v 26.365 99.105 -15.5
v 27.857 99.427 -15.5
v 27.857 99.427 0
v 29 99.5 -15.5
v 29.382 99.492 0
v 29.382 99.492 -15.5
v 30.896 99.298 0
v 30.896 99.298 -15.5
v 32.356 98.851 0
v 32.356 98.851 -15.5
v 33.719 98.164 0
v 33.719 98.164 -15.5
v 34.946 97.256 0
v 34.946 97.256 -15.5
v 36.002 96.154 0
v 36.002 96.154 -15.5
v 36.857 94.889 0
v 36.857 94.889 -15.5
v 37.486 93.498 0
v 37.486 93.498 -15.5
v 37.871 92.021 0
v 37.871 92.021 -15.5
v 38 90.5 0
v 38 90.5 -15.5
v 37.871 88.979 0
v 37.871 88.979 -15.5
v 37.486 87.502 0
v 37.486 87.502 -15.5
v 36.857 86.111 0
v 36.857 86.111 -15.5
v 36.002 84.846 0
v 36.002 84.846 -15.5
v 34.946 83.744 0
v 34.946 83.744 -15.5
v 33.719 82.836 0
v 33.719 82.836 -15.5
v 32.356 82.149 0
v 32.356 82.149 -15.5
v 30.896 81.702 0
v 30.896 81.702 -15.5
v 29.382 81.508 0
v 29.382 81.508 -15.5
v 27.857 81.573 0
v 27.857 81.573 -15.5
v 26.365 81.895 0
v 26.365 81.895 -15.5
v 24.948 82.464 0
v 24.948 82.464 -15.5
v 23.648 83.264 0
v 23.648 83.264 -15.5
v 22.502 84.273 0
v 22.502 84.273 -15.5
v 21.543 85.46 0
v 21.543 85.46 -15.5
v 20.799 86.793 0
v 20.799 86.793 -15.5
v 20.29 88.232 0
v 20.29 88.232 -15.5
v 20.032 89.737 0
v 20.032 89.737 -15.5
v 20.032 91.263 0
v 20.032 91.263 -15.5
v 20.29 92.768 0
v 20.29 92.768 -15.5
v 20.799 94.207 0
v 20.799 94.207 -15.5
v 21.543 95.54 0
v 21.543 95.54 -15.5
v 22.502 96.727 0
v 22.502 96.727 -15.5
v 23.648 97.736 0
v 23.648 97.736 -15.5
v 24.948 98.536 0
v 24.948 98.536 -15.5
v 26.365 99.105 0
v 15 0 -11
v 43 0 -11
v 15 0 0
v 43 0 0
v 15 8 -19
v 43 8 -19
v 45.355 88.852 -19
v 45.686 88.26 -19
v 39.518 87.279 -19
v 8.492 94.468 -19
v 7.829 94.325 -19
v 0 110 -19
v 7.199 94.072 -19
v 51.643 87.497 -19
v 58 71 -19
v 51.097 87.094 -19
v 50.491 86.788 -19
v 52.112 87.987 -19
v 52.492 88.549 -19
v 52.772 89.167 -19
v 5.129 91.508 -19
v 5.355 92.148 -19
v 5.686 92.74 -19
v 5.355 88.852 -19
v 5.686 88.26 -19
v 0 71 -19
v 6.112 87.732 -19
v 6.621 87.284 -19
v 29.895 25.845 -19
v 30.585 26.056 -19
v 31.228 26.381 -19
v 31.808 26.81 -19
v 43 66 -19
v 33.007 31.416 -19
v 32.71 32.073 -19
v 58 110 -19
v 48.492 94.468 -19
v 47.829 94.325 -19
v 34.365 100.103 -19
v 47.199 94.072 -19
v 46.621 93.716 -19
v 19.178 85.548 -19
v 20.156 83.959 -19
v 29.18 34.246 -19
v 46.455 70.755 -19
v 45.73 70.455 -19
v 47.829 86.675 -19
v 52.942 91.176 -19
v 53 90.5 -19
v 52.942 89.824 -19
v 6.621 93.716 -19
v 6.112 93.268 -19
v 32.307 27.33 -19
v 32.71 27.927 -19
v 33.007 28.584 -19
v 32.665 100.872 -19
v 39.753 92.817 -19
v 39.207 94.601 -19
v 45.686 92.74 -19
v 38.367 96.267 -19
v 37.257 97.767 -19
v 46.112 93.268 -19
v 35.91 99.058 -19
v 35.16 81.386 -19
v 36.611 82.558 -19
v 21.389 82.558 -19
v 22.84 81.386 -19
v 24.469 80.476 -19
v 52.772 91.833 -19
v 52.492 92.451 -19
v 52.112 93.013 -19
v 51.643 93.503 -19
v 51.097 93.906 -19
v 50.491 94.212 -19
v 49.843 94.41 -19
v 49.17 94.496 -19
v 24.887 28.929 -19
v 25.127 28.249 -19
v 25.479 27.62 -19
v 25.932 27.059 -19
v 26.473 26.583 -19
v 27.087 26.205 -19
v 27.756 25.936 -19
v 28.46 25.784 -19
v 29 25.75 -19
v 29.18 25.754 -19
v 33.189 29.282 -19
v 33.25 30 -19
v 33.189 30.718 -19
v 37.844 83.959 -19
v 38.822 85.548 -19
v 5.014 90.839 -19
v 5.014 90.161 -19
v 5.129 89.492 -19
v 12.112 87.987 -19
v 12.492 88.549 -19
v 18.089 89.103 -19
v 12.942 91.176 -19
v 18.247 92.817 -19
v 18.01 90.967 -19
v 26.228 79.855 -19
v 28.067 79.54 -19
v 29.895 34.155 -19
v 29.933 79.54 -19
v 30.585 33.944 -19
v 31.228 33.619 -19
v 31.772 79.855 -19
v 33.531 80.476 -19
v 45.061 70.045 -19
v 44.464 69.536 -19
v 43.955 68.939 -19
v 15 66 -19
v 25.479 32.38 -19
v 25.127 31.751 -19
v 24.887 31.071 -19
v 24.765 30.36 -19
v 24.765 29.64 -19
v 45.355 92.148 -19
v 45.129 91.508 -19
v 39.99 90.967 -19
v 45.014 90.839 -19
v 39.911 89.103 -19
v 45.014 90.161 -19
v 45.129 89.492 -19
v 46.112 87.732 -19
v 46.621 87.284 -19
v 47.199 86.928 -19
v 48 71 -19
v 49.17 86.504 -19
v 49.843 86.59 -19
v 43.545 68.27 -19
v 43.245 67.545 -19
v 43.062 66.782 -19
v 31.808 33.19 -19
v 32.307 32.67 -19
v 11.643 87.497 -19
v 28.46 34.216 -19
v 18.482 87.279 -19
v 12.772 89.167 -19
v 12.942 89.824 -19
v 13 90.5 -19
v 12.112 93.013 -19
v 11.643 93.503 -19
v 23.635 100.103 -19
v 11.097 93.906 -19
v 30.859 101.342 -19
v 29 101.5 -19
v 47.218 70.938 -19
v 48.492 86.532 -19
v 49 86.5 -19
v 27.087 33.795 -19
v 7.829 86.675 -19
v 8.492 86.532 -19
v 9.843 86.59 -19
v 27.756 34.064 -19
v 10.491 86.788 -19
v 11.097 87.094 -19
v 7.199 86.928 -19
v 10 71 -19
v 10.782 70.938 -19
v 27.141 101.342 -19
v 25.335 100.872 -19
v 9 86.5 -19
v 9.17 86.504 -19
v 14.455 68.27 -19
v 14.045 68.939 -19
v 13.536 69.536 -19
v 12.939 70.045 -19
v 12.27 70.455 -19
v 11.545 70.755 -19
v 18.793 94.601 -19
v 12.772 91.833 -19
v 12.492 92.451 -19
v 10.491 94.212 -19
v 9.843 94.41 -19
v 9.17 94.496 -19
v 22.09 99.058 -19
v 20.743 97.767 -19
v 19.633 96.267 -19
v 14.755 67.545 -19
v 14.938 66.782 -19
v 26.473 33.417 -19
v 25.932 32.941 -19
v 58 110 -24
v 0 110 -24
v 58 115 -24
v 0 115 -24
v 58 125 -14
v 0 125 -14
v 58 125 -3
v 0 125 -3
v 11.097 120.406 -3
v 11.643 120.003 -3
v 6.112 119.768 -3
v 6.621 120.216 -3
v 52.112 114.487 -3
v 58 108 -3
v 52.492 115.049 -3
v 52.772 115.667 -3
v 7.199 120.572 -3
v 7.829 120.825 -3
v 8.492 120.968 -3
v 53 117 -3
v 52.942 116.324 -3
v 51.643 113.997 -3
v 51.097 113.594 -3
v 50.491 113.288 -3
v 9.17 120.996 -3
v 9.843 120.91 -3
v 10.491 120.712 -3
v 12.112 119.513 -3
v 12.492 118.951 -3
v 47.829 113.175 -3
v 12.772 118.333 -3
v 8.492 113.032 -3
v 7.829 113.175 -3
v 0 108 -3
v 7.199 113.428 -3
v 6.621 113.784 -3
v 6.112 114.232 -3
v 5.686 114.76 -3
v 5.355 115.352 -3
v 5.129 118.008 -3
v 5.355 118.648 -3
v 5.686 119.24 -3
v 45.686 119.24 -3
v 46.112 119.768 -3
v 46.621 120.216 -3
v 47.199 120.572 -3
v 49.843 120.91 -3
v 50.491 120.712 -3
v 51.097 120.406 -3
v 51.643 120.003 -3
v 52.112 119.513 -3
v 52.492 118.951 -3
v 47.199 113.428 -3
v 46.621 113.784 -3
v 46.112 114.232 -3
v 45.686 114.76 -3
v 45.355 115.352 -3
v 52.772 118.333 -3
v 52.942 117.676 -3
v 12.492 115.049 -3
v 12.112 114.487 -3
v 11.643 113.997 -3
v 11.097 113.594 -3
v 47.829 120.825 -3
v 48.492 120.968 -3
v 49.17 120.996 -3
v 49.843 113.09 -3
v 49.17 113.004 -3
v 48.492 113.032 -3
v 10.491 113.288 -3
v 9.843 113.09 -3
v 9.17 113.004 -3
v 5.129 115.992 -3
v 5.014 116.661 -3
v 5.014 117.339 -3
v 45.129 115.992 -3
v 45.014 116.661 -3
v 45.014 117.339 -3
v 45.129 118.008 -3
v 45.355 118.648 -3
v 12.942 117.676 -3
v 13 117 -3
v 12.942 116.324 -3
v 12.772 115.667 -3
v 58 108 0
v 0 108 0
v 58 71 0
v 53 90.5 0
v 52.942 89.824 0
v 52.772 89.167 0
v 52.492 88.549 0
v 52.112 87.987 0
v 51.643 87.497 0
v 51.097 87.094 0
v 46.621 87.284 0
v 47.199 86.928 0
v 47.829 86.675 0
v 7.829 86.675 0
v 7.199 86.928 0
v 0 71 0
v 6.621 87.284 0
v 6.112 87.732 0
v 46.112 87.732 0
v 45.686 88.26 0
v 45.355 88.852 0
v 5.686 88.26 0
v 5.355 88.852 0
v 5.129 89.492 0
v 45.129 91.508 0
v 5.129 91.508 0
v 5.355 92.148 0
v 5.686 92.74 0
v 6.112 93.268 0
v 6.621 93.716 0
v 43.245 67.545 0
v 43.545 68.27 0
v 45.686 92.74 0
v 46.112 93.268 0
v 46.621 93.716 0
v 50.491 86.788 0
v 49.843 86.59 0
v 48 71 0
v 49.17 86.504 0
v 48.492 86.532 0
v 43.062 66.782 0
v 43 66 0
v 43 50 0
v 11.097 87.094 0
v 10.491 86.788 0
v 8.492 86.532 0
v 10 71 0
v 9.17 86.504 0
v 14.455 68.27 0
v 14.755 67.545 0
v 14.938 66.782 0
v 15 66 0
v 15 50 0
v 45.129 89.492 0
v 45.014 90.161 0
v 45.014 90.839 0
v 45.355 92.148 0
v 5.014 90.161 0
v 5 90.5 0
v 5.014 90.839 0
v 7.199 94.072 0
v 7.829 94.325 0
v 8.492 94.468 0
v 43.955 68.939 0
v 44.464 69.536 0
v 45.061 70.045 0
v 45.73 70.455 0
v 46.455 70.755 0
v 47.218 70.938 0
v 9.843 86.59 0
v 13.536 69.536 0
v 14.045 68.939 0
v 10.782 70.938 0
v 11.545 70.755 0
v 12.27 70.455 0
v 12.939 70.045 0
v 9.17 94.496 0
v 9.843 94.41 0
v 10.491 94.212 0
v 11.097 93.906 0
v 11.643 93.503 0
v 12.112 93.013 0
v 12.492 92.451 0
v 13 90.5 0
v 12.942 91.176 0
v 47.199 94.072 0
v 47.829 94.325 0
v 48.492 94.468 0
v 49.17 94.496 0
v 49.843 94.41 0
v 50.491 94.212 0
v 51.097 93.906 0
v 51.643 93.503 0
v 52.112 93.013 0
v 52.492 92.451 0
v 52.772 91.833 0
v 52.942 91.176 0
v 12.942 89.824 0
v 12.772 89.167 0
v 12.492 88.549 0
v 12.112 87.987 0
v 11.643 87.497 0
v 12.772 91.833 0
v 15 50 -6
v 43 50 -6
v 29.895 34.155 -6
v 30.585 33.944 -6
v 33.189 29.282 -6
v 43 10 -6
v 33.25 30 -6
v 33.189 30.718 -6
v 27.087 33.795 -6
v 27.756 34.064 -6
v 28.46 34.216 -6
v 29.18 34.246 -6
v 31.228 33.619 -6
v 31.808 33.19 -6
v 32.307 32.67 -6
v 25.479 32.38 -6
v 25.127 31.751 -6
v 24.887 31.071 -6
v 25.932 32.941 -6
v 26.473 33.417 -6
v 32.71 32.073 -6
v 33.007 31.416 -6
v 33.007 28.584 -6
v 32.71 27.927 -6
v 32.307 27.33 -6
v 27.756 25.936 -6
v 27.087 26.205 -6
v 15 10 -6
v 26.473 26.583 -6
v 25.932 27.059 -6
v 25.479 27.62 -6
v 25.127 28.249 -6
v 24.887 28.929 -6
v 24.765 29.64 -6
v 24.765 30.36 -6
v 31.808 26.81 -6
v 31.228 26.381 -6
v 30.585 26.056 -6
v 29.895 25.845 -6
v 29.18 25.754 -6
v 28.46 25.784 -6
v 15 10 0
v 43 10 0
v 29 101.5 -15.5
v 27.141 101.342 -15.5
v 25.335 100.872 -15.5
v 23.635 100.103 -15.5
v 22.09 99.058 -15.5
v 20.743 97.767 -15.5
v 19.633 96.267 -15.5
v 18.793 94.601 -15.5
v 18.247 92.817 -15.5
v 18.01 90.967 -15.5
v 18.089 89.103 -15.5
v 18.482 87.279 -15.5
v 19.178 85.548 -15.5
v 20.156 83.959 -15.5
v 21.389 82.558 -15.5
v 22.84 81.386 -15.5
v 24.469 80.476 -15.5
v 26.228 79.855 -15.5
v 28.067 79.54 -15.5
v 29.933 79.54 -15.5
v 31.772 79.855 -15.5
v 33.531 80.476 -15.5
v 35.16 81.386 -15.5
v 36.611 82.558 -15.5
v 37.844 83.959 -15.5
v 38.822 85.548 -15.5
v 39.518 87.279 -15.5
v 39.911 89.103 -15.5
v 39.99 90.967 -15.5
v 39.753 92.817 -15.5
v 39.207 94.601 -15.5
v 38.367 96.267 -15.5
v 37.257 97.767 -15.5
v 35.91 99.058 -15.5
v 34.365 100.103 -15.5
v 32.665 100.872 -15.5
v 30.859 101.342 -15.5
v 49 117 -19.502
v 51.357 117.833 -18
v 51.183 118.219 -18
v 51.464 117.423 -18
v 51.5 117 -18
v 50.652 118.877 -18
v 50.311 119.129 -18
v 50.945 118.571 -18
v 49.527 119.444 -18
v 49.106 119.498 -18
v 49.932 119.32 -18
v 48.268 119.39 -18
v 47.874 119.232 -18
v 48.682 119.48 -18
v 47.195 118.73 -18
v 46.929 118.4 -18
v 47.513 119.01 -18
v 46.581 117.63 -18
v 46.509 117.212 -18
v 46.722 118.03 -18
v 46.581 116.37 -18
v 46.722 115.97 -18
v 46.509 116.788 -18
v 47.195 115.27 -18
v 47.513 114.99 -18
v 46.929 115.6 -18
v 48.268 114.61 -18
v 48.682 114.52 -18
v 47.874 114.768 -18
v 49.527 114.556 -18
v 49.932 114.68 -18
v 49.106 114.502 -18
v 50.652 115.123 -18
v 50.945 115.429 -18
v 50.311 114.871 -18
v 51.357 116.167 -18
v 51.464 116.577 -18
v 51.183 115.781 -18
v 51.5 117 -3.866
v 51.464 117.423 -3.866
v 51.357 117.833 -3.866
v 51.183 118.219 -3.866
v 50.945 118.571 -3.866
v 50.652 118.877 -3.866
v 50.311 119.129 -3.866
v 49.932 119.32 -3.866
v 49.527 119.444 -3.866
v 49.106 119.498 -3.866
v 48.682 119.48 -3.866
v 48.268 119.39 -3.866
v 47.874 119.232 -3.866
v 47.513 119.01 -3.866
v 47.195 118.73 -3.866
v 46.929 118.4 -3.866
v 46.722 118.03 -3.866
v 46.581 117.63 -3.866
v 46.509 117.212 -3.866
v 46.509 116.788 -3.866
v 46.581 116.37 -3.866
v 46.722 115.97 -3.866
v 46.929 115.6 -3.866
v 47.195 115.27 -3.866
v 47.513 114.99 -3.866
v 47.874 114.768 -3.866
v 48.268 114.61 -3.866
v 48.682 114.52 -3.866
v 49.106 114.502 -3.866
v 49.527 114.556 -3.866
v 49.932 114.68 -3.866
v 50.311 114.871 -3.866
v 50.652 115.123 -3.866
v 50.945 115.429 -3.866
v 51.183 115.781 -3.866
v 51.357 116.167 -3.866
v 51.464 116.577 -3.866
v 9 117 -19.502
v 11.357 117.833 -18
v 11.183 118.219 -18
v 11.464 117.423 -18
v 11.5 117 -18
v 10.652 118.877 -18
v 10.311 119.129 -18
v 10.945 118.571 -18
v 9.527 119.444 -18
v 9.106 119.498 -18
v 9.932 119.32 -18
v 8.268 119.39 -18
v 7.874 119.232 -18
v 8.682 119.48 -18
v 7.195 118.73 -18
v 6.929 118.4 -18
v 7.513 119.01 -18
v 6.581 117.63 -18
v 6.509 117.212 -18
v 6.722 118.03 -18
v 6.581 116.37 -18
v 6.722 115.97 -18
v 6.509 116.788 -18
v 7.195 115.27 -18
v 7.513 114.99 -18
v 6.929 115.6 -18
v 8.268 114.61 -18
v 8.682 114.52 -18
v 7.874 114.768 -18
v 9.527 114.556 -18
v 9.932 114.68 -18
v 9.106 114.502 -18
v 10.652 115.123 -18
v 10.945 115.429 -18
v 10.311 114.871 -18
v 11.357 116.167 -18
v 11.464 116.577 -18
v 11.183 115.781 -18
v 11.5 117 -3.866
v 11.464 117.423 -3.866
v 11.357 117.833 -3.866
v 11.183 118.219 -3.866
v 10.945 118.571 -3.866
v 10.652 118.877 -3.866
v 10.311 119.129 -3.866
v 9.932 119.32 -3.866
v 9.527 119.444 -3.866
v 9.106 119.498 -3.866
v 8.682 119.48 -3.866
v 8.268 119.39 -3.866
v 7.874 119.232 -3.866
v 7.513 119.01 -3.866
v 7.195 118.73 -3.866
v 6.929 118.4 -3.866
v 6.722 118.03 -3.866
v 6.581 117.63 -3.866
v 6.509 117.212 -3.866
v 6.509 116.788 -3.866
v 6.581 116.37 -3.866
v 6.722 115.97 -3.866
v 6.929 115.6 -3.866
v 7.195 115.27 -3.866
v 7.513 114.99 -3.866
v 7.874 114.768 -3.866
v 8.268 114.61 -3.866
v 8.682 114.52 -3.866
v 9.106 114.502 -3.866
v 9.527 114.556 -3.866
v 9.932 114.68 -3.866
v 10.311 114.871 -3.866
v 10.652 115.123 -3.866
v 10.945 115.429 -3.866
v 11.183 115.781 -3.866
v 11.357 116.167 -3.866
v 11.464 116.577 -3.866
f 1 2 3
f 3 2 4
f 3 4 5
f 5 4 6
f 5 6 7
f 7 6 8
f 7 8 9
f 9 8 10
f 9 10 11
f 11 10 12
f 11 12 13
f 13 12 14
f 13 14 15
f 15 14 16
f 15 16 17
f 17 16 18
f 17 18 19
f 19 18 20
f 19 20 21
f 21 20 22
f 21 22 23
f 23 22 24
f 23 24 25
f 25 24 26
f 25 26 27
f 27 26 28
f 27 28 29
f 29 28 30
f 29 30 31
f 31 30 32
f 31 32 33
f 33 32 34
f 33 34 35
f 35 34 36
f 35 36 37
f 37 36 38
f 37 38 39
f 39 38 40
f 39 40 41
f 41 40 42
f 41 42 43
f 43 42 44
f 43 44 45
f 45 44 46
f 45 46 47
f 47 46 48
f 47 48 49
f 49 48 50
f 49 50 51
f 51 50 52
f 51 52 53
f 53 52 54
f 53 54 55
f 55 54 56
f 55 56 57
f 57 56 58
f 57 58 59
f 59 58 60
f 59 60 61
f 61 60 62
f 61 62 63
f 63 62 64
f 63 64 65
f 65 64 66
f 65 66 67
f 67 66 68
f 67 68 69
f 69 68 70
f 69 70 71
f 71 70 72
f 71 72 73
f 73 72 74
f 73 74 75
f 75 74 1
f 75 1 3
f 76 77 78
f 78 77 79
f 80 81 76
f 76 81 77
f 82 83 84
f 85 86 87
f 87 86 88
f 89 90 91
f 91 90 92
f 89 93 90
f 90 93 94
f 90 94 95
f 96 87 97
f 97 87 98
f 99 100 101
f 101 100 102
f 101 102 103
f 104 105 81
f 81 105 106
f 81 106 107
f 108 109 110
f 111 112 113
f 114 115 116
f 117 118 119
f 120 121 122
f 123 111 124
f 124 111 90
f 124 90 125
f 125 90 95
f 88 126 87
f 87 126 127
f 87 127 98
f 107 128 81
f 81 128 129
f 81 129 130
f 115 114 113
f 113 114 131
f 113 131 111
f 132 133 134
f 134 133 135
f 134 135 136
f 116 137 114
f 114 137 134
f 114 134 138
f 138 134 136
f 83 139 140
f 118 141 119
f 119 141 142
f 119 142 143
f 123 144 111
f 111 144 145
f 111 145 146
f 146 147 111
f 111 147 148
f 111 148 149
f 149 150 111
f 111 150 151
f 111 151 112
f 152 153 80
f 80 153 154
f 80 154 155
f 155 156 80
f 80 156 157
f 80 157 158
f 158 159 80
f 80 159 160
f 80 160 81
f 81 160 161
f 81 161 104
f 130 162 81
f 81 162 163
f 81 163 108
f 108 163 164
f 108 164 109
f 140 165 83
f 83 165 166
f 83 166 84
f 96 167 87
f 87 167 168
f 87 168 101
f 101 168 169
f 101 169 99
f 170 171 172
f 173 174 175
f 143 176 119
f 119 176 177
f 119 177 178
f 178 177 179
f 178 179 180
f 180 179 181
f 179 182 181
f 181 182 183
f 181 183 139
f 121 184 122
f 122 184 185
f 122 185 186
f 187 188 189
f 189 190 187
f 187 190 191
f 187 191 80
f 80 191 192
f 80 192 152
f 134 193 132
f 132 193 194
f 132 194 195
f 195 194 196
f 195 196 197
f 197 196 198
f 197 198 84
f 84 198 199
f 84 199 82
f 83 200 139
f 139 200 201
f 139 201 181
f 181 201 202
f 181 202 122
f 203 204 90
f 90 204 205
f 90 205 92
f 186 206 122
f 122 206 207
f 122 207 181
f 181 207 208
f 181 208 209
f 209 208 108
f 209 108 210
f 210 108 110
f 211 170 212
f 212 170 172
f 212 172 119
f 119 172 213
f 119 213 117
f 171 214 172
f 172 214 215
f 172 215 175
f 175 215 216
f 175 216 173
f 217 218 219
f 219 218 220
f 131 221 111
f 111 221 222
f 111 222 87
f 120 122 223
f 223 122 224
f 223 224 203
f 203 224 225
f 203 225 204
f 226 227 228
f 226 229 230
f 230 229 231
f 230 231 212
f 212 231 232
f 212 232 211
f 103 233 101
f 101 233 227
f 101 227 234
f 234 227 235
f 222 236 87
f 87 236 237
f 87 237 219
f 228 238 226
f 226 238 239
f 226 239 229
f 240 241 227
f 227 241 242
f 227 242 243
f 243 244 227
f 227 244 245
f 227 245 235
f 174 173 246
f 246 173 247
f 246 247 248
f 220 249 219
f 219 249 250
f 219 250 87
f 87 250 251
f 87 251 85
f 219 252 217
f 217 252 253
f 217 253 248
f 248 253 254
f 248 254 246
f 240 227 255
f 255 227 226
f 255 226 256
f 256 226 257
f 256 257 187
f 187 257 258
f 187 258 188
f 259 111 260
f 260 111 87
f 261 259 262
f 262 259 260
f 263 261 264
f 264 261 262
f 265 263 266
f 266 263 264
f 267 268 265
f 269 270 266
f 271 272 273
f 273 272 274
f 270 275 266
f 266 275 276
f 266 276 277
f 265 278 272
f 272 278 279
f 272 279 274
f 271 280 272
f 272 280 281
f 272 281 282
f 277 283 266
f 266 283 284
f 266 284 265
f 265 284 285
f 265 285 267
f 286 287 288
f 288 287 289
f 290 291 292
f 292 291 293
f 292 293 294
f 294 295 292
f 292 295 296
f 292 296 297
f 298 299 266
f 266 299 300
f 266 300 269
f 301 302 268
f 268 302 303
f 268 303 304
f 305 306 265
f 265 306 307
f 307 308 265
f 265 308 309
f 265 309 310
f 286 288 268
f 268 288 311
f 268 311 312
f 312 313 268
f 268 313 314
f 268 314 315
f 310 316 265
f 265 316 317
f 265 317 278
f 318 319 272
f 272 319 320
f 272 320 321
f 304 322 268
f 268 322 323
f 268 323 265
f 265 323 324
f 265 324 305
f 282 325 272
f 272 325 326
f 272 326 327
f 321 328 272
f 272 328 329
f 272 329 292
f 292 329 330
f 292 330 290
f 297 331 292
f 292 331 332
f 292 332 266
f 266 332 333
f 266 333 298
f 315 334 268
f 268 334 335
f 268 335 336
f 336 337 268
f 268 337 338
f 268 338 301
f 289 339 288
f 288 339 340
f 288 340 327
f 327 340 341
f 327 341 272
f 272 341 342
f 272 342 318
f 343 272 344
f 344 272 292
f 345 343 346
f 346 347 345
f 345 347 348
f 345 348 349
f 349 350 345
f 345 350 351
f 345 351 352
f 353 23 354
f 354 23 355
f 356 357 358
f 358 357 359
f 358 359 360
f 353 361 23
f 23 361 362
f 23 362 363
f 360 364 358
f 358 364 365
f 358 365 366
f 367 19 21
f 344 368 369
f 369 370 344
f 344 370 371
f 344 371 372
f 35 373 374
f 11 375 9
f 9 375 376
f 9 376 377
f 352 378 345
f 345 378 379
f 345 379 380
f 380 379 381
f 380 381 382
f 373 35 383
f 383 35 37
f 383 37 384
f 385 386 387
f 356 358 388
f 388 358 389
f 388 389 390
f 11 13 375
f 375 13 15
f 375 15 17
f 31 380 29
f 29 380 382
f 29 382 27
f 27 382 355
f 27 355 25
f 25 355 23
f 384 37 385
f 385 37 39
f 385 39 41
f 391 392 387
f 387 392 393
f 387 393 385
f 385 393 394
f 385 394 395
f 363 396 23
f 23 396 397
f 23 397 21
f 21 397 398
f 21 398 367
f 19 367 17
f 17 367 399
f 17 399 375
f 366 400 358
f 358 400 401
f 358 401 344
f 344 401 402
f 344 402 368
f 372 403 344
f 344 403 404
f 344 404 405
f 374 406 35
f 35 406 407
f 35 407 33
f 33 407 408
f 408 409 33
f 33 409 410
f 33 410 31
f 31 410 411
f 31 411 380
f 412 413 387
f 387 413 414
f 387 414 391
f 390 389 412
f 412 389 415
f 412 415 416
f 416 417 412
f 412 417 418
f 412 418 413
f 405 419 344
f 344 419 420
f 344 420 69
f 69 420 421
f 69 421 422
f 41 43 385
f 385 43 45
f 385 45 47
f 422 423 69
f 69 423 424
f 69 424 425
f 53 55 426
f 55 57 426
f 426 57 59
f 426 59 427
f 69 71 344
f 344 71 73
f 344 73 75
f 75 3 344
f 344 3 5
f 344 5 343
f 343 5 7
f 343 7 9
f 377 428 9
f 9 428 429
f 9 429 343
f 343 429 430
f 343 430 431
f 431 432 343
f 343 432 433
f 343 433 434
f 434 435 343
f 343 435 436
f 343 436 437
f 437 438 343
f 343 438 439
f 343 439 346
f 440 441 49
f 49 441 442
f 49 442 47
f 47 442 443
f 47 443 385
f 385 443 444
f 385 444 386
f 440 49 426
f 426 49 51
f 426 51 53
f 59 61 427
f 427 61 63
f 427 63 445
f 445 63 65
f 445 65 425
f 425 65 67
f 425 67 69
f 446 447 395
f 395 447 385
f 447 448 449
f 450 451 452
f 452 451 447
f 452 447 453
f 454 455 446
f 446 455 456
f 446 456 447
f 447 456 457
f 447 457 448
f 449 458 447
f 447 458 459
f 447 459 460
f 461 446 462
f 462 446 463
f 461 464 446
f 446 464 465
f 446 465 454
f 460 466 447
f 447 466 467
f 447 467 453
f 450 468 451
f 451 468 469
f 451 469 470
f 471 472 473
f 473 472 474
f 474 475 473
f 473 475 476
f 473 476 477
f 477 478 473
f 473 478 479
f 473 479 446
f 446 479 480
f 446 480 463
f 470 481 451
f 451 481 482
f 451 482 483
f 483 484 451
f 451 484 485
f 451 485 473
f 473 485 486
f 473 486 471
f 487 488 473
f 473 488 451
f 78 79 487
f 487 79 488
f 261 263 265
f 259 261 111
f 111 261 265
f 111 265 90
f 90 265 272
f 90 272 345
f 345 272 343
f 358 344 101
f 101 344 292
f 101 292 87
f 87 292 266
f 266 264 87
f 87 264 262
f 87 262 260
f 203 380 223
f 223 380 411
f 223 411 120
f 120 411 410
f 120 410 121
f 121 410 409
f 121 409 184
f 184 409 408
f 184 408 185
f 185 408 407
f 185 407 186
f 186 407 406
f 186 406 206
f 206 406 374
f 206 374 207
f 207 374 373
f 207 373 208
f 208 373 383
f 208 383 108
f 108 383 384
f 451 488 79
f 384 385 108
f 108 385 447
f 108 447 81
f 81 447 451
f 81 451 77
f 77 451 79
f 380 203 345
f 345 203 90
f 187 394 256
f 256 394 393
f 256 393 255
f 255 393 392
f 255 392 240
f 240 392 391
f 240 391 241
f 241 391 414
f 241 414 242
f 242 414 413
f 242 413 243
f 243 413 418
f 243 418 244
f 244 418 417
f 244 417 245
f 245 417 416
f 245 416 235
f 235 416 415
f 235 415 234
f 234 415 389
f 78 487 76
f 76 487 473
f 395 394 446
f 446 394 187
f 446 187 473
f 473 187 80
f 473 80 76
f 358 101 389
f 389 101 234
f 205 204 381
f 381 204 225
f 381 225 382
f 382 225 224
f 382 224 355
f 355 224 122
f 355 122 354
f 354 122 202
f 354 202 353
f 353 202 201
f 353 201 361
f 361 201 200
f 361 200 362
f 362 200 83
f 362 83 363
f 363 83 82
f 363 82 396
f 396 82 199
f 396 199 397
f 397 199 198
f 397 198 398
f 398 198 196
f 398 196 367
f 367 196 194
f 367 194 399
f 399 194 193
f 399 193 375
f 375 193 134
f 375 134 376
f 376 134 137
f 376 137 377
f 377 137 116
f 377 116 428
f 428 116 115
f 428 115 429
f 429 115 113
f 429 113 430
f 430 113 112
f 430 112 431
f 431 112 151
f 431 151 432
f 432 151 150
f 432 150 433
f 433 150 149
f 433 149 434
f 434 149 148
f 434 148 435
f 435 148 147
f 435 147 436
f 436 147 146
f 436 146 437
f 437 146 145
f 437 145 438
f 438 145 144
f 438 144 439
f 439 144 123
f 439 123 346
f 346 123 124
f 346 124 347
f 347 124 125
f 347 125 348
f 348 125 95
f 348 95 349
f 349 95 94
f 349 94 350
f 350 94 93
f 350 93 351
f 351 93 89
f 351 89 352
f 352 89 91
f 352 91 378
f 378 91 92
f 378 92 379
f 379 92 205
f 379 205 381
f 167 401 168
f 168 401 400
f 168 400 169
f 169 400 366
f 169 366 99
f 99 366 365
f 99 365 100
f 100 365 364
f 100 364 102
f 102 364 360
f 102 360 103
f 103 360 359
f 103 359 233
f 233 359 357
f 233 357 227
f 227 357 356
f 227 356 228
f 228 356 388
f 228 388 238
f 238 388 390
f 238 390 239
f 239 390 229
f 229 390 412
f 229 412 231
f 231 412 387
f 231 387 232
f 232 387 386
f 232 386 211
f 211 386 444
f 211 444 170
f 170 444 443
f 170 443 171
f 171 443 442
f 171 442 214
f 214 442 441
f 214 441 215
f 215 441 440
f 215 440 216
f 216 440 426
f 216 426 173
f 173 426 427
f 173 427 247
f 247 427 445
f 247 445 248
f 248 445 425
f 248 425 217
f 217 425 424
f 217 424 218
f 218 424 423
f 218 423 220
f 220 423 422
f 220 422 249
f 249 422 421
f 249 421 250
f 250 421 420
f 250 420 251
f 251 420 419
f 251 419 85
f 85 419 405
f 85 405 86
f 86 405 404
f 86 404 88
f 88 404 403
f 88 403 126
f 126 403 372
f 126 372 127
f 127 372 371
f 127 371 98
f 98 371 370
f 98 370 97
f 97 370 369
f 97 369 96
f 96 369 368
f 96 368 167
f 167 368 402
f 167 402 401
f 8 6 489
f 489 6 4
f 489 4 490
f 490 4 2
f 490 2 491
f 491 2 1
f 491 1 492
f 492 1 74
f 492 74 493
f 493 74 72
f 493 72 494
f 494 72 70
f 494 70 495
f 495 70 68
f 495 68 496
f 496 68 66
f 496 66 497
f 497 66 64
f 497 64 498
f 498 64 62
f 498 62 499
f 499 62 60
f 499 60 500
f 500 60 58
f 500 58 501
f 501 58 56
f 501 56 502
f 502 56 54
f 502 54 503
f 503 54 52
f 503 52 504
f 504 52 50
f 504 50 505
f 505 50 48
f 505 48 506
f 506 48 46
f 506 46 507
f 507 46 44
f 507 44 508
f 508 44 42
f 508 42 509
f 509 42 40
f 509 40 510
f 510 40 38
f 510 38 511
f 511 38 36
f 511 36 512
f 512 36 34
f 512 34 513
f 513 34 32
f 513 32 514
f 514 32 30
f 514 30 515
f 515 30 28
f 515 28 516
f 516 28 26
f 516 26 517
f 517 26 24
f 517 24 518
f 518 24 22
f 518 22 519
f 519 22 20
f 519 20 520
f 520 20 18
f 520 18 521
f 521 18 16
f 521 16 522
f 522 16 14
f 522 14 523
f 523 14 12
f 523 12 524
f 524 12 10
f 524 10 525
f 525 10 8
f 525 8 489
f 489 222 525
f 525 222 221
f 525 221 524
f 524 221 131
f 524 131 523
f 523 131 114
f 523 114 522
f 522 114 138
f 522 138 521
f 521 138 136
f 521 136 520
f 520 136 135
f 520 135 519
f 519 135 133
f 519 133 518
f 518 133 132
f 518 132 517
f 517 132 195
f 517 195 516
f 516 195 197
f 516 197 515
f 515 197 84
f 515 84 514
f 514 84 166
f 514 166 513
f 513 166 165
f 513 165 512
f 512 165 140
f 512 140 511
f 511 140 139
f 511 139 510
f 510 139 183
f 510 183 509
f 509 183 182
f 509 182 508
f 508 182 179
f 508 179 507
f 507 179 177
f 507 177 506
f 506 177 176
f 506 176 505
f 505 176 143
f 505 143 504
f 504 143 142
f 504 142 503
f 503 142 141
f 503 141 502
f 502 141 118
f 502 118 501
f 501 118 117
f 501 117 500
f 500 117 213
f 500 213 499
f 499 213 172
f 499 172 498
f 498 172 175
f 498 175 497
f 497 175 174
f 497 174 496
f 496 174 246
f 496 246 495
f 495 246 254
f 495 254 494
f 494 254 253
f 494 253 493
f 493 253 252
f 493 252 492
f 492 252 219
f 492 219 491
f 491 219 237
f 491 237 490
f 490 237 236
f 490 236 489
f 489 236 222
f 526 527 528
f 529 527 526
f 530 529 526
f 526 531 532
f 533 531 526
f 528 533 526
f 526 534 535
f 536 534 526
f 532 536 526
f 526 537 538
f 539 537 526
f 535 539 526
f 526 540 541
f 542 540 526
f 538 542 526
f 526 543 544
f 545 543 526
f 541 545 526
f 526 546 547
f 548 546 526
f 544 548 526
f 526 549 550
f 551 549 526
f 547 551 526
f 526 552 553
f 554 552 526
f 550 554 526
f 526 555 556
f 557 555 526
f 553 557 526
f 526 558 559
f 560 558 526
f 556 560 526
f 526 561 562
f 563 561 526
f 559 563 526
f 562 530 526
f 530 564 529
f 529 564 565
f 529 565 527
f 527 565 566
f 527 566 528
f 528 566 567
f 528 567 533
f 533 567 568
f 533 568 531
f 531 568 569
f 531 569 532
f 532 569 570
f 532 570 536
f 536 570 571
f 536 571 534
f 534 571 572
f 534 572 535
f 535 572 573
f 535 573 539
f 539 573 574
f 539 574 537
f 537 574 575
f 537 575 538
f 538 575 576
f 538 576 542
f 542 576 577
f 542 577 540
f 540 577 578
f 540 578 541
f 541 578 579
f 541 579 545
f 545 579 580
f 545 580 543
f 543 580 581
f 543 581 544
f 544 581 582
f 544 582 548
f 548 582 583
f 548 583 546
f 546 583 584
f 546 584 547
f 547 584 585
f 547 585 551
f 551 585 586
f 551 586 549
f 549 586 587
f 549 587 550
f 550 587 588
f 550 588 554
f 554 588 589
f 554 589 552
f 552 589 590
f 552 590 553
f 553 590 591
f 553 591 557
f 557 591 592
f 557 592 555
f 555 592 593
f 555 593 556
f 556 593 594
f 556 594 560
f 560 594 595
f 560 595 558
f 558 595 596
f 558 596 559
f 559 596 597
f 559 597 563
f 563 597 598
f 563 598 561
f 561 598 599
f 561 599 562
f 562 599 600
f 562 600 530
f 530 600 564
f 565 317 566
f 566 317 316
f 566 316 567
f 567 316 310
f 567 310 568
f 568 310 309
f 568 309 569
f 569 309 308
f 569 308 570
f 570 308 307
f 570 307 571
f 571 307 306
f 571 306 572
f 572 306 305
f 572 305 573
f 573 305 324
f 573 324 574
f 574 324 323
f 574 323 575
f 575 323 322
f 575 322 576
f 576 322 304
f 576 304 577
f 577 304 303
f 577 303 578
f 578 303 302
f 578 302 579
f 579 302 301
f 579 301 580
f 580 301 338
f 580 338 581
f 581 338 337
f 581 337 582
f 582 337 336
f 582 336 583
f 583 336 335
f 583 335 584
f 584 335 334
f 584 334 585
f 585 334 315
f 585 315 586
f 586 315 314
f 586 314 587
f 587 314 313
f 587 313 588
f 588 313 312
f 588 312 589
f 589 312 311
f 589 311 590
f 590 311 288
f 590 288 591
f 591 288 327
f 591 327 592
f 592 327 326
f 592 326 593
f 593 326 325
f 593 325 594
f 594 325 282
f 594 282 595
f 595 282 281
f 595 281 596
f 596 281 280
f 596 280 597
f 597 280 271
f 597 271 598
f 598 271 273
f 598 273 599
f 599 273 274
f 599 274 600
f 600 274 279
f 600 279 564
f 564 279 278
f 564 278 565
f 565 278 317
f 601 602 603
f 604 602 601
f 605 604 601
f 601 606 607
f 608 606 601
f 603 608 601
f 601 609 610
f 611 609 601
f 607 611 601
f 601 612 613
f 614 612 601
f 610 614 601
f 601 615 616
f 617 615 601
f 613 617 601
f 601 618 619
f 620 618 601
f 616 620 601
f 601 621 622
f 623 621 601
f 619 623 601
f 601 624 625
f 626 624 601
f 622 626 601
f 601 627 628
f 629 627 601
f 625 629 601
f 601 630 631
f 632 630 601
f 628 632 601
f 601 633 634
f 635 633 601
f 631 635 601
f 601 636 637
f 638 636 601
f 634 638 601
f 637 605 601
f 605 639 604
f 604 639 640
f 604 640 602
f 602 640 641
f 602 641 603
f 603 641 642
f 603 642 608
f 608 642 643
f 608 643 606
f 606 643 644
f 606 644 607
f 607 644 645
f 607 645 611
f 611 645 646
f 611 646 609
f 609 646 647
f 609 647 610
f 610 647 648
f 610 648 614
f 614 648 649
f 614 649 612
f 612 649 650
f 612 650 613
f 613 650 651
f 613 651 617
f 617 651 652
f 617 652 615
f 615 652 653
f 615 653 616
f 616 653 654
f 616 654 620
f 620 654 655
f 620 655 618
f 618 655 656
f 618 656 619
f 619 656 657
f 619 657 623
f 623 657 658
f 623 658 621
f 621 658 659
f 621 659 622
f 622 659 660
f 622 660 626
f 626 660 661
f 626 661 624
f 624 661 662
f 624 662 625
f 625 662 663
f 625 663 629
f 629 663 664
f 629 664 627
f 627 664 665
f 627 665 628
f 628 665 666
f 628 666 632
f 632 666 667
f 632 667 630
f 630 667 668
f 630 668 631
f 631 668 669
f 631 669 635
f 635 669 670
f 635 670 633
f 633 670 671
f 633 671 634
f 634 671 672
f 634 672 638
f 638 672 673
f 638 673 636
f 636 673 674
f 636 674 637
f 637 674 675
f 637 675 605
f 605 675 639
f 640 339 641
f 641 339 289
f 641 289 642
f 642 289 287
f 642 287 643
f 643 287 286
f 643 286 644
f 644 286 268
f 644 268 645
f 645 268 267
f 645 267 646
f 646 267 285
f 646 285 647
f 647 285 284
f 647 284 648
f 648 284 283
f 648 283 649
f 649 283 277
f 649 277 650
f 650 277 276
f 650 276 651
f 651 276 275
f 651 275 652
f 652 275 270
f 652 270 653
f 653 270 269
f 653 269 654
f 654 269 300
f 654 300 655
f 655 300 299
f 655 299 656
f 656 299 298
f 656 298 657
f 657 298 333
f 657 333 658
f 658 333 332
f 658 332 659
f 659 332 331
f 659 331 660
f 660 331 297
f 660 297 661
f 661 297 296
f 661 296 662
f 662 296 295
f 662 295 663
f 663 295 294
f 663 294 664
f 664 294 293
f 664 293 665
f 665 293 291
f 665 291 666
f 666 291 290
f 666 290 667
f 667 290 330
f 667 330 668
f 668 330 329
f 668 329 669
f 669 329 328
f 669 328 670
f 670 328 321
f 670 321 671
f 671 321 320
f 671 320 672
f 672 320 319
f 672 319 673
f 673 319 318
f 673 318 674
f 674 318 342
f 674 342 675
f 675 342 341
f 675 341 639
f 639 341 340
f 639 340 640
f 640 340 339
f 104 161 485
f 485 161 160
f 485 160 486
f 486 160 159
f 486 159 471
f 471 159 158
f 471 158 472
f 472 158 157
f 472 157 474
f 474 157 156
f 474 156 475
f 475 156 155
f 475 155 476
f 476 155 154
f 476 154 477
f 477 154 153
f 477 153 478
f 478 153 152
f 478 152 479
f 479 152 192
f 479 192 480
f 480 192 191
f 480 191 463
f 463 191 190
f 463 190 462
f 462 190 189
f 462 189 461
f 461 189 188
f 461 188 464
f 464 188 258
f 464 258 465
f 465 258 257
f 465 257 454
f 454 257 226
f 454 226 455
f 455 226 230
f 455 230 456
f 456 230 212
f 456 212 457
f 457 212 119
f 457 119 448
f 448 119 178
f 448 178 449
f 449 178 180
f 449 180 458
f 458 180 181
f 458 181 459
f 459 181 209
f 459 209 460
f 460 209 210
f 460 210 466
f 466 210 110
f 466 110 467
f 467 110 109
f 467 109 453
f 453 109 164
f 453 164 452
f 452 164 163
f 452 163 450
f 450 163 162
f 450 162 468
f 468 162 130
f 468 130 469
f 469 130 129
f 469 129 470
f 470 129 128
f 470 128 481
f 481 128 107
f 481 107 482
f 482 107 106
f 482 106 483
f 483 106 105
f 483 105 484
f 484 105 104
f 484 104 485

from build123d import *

# Parameters (mm, degrees)
BOSS_EXTRU_1_DEPTH         = 58
ESQUISSE2_R                = 4
ESQUISSE2_R_2              = 9
ENL_V_MAT_EXTRU_1_DEPTH    = 140.874944147
ESQUISSE3_R                = 11
ENL_V_MAT_EXTRU_2_DEPTH    = 3.5
R_P_TITION_LIN_AIRE1_COUNT = 2
R_P_TITION_LIN_AIRE1_PITCH = 40
TROU_TARAUD_M101_D         = 8.5


with BuildPart() as part:
    # Esquisse1 → Boss.-Extru.1 (new body)
    with BuildSketch(Plane(origin=(0, 0, 0), x_dir=(0, 0, -1), z_dir=(1, 0, 0))):
        Polygon((0, 0), (0, 10), (6, 10), (6, 50), (0, 50), (0, 108), (3, 108), (3, 125), (14, 125), (24, 115), (24, 110), (19, 110), (19, 8), (11, 0), align=None)
    extrude(amount=BOSS_EXTRU_1_DEPTH)

    # Esquisse2 → Enlèv. mat.-Extru.1 (cut, through all)
    with BuildSketch(Plane.XY):
        with Locations((49, 90.5)):
            Circle(ESQUISSE2_R)
        with Locations((9, 90.5)):
            Circle(ESQUISSE2_R)
        with Locations((29, 90.5)):
            Circle(ESQUISSE2_R_2)
        with BuildLine():
            Line((58, 0), (43, 0))
            Line((43, 0), (43, 66))
            ThreePointArc((43, 66), (44.464466094, 69.535533906), (48, 71))
            Line((48, 71), (58, 71))
            Line((58, 71), (58, 0))
        make_face()
        with BuildLine():
            Line((15, 0), (15, 66))
            ThreePointArc((15, 66), (13.535533906, 69.535533906), (10, 71))
            Line((10, 71), (0, 71))
            Line((0, 71), (0, 0))
            Line((0, 0), (15, 0))
        make_face()
    extrude(amount=-ENL_V_MAT_EXTRU_1_DEPTH, mode=Mode.SUBTRACT)

    # Esquisse3 → Enlèv. mat.-Extru.2 (cut)
    with BuildSketch(Plane(origin=(0, 0, -19), x_dir=(-1, 0, 0), z_dir=(0, 0, -1))):
        with Locations(Location((-29, 90.5, 0), (0, 0, 90))):
            Circle(ESQUISSE3_R)
    extrude(amount=-ENL_V_MAT_EXTRU_2_DEPTH, mode=Mode.SUBTRACT)

    # Esquisse5 → Trou taraudé M61 (revolve, cut)
    with BuildSketch(Plane(origin=(49, 117, -3), x_dir=(0, -1, 0), z_dir=(1, 0, 0))):
        Polygon((0, 0), (0, 16.502151548), (2.5, 15), (2.5, 0.866025404), (4, 0), align=None)
    trou_taraud_m61 = revolve(axis=Axis((49, 117, 3.35), (0, 0, -1)), mode=Mode.SUBTRACT)

    # Répétition linéaire1: Trou taraudé M61 ×2
    with Locations(*[(-i * R_P_TITION_LIN_AIRE1_PITCH, 0, 0) for i in range(1, R_P_TITION_LIN_AIRE1_COUNT)]):
        add(trou_taraud_m61, mode=Mode.SUBTRACT)

    # Trou taraudé M101 (through all)
    with Locations(Plane.XY.offset(-6)):
        with Locations((29, 30)):
            Hole(TROU_TARAUD_M101_D / 2)


solid = part.part
